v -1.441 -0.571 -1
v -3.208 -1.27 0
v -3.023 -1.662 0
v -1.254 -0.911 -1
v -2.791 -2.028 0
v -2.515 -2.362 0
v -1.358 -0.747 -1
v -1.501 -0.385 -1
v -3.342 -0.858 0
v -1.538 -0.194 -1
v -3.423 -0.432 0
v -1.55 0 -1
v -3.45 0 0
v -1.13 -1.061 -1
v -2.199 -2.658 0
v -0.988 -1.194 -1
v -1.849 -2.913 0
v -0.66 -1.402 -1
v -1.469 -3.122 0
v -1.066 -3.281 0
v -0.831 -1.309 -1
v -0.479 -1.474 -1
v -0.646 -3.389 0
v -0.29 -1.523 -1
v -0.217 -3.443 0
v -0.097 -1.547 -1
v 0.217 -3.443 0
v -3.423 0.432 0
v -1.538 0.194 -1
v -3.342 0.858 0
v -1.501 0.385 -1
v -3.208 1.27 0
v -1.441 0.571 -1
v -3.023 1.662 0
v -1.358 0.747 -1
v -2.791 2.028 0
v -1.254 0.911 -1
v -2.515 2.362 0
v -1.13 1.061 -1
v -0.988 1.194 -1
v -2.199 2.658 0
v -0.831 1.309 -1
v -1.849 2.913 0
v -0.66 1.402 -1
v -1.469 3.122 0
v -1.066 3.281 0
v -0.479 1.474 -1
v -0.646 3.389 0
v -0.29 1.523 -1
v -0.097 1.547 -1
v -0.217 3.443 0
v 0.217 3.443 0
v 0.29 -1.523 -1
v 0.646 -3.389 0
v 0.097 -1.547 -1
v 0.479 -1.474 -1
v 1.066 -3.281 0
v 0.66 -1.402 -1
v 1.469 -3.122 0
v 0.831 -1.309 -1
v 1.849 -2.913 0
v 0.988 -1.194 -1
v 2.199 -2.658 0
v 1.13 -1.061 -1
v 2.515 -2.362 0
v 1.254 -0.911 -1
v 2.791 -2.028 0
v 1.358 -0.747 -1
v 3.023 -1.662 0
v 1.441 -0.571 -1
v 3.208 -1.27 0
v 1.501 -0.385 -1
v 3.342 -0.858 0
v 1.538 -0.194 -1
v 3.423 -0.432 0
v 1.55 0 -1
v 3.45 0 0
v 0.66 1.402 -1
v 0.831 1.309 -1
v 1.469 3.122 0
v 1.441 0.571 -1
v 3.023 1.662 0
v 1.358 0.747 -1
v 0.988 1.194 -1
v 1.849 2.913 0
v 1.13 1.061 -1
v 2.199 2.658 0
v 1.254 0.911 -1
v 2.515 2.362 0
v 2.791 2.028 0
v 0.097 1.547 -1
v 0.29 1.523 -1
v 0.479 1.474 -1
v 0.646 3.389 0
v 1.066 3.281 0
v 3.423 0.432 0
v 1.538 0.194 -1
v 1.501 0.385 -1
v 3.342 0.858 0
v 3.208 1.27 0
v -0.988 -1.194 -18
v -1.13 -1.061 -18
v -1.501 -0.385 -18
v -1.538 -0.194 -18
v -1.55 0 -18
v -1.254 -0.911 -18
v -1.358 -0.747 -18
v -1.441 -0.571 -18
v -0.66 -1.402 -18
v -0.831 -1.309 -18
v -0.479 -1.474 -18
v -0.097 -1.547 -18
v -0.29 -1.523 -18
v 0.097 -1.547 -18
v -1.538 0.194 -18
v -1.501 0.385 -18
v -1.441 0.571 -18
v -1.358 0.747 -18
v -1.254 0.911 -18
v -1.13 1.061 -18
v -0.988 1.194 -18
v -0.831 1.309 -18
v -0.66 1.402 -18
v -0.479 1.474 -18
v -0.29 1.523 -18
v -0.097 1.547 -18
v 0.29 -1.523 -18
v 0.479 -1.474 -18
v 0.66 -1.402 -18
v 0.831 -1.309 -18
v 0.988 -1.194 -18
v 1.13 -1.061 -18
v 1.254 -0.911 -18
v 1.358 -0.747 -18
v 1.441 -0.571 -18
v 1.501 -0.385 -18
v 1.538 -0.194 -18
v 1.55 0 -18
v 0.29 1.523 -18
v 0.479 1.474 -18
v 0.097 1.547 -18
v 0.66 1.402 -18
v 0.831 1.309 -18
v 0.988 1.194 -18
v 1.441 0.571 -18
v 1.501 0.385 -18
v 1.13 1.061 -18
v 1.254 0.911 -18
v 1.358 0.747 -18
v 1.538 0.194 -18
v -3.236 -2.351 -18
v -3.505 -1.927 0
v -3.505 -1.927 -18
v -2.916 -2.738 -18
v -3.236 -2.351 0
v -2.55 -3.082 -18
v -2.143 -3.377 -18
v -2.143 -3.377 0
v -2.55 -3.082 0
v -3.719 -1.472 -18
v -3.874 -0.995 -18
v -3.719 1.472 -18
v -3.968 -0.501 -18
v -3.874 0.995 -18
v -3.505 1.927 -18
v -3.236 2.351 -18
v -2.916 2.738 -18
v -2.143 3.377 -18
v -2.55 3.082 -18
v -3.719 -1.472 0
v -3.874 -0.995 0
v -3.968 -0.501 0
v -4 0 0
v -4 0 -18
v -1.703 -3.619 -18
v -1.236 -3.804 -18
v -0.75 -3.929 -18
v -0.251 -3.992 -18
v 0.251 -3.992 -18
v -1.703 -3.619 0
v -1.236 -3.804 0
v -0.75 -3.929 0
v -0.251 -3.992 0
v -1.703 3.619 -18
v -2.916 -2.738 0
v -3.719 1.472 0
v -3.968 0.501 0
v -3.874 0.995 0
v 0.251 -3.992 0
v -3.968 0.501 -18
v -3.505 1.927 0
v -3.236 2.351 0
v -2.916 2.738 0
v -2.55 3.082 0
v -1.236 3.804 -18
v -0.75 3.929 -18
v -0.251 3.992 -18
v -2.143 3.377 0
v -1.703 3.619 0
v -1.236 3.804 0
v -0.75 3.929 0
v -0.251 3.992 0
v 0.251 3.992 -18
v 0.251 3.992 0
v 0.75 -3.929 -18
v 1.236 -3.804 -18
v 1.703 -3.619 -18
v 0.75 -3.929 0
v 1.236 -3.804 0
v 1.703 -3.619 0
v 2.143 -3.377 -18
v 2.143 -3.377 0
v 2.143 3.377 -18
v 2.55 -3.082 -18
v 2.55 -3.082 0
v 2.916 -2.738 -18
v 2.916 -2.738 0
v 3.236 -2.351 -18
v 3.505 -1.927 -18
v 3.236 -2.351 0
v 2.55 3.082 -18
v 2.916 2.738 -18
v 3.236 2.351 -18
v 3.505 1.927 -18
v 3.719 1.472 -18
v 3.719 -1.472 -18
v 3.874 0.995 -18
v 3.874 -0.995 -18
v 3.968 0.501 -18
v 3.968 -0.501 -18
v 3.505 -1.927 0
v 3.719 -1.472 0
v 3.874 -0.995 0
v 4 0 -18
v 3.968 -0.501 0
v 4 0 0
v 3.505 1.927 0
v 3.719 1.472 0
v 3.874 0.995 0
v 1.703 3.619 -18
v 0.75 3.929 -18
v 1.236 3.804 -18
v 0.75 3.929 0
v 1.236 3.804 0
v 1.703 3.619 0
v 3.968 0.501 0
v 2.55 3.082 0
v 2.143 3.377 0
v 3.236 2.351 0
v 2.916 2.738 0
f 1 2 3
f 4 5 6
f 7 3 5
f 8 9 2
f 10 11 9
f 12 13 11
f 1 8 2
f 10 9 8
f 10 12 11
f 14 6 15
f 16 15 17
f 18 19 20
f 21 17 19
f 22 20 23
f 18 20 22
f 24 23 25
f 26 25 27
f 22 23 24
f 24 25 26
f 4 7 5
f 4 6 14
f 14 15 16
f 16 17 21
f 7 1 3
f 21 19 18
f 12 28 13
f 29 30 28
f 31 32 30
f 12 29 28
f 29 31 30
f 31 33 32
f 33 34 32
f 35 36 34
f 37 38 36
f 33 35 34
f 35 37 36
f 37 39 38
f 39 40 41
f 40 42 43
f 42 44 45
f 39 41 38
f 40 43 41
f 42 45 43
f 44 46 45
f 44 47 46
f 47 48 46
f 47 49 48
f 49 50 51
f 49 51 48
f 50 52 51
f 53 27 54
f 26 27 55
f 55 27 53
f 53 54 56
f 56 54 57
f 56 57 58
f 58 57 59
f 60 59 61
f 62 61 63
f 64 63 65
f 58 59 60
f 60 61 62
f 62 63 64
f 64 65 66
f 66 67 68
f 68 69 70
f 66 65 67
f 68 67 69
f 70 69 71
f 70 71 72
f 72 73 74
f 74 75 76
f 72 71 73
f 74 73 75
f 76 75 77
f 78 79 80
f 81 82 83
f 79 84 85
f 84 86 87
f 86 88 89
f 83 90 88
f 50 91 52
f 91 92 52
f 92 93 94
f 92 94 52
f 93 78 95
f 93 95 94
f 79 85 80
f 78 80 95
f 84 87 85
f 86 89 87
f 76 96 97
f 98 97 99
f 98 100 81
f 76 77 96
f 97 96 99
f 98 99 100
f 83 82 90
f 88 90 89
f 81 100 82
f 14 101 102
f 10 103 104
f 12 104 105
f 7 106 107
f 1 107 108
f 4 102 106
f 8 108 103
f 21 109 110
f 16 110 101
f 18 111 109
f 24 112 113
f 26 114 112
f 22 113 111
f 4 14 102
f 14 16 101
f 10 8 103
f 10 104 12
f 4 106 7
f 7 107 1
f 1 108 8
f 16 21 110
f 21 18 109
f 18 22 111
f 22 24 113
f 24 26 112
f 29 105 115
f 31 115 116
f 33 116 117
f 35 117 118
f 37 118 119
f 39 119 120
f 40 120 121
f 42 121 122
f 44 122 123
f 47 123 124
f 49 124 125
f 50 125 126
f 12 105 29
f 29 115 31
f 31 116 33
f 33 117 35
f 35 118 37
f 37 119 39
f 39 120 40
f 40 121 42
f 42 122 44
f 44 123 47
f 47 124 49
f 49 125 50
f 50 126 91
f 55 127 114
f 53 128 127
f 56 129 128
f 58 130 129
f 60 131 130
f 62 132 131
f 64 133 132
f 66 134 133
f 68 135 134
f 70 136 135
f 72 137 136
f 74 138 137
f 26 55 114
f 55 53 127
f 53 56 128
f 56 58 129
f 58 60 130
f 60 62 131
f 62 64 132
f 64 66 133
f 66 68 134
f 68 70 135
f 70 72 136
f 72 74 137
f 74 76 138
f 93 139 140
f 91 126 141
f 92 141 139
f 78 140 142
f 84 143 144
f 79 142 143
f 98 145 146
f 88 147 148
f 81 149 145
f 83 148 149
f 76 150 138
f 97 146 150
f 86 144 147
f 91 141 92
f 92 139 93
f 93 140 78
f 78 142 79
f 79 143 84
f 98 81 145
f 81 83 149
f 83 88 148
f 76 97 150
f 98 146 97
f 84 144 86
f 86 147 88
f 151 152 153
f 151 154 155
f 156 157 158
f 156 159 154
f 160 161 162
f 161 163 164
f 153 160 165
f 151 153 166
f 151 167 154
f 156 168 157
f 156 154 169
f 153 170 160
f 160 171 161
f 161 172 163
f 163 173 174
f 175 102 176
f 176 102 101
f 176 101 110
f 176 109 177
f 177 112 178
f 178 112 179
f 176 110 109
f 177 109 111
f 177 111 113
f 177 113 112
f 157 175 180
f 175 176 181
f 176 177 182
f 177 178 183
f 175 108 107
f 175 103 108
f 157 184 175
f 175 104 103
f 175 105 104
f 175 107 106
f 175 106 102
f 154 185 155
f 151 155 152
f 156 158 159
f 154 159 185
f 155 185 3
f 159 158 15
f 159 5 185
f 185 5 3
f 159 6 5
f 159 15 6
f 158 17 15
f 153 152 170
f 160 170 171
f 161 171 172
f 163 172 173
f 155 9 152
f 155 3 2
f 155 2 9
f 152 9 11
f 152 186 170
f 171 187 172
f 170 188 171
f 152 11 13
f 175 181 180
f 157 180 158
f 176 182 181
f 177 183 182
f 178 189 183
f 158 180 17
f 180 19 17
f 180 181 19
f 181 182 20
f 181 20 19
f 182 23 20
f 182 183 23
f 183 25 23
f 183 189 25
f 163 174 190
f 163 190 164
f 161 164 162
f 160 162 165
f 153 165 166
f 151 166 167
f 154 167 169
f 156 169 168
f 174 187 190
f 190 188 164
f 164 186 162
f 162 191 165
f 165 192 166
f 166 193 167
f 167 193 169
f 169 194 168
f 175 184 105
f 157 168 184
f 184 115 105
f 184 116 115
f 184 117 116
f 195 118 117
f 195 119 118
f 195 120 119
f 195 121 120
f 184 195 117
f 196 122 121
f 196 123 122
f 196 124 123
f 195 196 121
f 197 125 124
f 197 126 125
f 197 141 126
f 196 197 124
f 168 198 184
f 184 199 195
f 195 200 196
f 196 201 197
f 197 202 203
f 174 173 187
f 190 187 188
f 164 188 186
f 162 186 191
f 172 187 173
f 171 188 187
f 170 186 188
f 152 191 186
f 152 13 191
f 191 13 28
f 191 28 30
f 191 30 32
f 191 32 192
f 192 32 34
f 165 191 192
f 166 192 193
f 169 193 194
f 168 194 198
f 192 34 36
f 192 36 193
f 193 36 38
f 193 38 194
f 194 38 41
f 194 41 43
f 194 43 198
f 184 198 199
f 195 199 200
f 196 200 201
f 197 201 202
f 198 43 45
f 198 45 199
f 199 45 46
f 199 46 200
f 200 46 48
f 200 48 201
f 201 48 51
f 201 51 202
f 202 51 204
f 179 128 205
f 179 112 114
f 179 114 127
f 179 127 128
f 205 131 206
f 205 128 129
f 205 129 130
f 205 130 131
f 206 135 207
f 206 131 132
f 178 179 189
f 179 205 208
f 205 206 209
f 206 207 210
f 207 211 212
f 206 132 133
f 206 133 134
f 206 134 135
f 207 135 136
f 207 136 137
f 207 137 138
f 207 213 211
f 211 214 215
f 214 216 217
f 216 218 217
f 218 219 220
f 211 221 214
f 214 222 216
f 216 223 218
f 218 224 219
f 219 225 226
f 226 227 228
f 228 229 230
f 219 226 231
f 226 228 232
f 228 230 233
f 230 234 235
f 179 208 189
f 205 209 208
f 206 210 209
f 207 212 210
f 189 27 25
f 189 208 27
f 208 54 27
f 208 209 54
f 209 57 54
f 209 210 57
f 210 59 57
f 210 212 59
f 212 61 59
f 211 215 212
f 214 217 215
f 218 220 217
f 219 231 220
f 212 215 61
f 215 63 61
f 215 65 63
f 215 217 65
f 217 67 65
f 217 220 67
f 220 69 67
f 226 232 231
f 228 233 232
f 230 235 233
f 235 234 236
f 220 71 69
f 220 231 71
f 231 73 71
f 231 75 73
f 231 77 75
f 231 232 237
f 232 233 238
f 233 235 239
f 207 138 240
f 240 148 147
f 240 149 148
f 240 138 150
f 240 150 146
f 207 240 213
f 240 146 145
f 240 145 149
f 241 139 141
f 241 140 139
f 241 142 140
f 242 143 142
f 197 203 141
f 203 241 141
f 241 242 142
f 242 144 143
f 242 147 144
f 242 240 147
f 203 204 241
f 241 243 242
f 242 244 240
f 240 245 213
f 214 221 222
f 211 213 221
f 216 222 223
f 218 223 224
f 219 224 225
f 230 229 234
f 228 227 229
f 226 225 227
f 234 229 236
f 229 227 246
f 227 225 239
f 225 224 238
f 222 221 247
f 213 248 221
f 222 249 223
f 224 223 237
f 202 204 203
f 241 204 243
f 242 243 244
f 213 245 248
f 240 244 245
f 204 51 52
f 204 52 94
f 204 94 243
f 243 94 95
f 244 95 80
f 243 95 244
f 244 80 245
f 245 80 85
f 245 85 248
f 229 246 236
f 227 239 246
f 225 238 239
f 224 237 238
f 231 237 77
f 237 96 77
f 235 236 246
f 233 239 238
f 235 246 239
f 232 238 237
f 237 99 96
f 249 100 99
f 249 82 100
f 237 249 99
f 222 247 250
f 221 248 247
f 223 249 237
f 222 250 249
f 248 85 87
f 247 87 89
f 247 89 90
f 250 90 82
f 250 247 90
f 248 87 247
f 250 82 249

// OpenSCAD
$fn = 50;

difference() {
	union() {
		translate(v = [0, 0, -18.0]) {
			cylinder(h = 18, r = 4.0);
		}
	}
	union() {
		translate(v = [0, 0, 0]) {
			rotate(a = [0, 0, 0]) {
				difference() {
					union() {
						translate(v = [0, 0, -21.0]) {
							cylinder(h = 21, r = 1.25);
						}
						translate(v = [0, 0, -1.0]) {
							cylinder(h = 1.0, r1 = 1.55, r2 = 3.45);
						}
						translate(v = [0, 0, -21.0]) {
							cylinder(h = 21, r = 1.55);
						}
						translate(v = [0, 0, -21.0]) {
							cylinder(h = 21, r = 1.25);
						}
					}
					union();
				}
			}
		}
	}
}
